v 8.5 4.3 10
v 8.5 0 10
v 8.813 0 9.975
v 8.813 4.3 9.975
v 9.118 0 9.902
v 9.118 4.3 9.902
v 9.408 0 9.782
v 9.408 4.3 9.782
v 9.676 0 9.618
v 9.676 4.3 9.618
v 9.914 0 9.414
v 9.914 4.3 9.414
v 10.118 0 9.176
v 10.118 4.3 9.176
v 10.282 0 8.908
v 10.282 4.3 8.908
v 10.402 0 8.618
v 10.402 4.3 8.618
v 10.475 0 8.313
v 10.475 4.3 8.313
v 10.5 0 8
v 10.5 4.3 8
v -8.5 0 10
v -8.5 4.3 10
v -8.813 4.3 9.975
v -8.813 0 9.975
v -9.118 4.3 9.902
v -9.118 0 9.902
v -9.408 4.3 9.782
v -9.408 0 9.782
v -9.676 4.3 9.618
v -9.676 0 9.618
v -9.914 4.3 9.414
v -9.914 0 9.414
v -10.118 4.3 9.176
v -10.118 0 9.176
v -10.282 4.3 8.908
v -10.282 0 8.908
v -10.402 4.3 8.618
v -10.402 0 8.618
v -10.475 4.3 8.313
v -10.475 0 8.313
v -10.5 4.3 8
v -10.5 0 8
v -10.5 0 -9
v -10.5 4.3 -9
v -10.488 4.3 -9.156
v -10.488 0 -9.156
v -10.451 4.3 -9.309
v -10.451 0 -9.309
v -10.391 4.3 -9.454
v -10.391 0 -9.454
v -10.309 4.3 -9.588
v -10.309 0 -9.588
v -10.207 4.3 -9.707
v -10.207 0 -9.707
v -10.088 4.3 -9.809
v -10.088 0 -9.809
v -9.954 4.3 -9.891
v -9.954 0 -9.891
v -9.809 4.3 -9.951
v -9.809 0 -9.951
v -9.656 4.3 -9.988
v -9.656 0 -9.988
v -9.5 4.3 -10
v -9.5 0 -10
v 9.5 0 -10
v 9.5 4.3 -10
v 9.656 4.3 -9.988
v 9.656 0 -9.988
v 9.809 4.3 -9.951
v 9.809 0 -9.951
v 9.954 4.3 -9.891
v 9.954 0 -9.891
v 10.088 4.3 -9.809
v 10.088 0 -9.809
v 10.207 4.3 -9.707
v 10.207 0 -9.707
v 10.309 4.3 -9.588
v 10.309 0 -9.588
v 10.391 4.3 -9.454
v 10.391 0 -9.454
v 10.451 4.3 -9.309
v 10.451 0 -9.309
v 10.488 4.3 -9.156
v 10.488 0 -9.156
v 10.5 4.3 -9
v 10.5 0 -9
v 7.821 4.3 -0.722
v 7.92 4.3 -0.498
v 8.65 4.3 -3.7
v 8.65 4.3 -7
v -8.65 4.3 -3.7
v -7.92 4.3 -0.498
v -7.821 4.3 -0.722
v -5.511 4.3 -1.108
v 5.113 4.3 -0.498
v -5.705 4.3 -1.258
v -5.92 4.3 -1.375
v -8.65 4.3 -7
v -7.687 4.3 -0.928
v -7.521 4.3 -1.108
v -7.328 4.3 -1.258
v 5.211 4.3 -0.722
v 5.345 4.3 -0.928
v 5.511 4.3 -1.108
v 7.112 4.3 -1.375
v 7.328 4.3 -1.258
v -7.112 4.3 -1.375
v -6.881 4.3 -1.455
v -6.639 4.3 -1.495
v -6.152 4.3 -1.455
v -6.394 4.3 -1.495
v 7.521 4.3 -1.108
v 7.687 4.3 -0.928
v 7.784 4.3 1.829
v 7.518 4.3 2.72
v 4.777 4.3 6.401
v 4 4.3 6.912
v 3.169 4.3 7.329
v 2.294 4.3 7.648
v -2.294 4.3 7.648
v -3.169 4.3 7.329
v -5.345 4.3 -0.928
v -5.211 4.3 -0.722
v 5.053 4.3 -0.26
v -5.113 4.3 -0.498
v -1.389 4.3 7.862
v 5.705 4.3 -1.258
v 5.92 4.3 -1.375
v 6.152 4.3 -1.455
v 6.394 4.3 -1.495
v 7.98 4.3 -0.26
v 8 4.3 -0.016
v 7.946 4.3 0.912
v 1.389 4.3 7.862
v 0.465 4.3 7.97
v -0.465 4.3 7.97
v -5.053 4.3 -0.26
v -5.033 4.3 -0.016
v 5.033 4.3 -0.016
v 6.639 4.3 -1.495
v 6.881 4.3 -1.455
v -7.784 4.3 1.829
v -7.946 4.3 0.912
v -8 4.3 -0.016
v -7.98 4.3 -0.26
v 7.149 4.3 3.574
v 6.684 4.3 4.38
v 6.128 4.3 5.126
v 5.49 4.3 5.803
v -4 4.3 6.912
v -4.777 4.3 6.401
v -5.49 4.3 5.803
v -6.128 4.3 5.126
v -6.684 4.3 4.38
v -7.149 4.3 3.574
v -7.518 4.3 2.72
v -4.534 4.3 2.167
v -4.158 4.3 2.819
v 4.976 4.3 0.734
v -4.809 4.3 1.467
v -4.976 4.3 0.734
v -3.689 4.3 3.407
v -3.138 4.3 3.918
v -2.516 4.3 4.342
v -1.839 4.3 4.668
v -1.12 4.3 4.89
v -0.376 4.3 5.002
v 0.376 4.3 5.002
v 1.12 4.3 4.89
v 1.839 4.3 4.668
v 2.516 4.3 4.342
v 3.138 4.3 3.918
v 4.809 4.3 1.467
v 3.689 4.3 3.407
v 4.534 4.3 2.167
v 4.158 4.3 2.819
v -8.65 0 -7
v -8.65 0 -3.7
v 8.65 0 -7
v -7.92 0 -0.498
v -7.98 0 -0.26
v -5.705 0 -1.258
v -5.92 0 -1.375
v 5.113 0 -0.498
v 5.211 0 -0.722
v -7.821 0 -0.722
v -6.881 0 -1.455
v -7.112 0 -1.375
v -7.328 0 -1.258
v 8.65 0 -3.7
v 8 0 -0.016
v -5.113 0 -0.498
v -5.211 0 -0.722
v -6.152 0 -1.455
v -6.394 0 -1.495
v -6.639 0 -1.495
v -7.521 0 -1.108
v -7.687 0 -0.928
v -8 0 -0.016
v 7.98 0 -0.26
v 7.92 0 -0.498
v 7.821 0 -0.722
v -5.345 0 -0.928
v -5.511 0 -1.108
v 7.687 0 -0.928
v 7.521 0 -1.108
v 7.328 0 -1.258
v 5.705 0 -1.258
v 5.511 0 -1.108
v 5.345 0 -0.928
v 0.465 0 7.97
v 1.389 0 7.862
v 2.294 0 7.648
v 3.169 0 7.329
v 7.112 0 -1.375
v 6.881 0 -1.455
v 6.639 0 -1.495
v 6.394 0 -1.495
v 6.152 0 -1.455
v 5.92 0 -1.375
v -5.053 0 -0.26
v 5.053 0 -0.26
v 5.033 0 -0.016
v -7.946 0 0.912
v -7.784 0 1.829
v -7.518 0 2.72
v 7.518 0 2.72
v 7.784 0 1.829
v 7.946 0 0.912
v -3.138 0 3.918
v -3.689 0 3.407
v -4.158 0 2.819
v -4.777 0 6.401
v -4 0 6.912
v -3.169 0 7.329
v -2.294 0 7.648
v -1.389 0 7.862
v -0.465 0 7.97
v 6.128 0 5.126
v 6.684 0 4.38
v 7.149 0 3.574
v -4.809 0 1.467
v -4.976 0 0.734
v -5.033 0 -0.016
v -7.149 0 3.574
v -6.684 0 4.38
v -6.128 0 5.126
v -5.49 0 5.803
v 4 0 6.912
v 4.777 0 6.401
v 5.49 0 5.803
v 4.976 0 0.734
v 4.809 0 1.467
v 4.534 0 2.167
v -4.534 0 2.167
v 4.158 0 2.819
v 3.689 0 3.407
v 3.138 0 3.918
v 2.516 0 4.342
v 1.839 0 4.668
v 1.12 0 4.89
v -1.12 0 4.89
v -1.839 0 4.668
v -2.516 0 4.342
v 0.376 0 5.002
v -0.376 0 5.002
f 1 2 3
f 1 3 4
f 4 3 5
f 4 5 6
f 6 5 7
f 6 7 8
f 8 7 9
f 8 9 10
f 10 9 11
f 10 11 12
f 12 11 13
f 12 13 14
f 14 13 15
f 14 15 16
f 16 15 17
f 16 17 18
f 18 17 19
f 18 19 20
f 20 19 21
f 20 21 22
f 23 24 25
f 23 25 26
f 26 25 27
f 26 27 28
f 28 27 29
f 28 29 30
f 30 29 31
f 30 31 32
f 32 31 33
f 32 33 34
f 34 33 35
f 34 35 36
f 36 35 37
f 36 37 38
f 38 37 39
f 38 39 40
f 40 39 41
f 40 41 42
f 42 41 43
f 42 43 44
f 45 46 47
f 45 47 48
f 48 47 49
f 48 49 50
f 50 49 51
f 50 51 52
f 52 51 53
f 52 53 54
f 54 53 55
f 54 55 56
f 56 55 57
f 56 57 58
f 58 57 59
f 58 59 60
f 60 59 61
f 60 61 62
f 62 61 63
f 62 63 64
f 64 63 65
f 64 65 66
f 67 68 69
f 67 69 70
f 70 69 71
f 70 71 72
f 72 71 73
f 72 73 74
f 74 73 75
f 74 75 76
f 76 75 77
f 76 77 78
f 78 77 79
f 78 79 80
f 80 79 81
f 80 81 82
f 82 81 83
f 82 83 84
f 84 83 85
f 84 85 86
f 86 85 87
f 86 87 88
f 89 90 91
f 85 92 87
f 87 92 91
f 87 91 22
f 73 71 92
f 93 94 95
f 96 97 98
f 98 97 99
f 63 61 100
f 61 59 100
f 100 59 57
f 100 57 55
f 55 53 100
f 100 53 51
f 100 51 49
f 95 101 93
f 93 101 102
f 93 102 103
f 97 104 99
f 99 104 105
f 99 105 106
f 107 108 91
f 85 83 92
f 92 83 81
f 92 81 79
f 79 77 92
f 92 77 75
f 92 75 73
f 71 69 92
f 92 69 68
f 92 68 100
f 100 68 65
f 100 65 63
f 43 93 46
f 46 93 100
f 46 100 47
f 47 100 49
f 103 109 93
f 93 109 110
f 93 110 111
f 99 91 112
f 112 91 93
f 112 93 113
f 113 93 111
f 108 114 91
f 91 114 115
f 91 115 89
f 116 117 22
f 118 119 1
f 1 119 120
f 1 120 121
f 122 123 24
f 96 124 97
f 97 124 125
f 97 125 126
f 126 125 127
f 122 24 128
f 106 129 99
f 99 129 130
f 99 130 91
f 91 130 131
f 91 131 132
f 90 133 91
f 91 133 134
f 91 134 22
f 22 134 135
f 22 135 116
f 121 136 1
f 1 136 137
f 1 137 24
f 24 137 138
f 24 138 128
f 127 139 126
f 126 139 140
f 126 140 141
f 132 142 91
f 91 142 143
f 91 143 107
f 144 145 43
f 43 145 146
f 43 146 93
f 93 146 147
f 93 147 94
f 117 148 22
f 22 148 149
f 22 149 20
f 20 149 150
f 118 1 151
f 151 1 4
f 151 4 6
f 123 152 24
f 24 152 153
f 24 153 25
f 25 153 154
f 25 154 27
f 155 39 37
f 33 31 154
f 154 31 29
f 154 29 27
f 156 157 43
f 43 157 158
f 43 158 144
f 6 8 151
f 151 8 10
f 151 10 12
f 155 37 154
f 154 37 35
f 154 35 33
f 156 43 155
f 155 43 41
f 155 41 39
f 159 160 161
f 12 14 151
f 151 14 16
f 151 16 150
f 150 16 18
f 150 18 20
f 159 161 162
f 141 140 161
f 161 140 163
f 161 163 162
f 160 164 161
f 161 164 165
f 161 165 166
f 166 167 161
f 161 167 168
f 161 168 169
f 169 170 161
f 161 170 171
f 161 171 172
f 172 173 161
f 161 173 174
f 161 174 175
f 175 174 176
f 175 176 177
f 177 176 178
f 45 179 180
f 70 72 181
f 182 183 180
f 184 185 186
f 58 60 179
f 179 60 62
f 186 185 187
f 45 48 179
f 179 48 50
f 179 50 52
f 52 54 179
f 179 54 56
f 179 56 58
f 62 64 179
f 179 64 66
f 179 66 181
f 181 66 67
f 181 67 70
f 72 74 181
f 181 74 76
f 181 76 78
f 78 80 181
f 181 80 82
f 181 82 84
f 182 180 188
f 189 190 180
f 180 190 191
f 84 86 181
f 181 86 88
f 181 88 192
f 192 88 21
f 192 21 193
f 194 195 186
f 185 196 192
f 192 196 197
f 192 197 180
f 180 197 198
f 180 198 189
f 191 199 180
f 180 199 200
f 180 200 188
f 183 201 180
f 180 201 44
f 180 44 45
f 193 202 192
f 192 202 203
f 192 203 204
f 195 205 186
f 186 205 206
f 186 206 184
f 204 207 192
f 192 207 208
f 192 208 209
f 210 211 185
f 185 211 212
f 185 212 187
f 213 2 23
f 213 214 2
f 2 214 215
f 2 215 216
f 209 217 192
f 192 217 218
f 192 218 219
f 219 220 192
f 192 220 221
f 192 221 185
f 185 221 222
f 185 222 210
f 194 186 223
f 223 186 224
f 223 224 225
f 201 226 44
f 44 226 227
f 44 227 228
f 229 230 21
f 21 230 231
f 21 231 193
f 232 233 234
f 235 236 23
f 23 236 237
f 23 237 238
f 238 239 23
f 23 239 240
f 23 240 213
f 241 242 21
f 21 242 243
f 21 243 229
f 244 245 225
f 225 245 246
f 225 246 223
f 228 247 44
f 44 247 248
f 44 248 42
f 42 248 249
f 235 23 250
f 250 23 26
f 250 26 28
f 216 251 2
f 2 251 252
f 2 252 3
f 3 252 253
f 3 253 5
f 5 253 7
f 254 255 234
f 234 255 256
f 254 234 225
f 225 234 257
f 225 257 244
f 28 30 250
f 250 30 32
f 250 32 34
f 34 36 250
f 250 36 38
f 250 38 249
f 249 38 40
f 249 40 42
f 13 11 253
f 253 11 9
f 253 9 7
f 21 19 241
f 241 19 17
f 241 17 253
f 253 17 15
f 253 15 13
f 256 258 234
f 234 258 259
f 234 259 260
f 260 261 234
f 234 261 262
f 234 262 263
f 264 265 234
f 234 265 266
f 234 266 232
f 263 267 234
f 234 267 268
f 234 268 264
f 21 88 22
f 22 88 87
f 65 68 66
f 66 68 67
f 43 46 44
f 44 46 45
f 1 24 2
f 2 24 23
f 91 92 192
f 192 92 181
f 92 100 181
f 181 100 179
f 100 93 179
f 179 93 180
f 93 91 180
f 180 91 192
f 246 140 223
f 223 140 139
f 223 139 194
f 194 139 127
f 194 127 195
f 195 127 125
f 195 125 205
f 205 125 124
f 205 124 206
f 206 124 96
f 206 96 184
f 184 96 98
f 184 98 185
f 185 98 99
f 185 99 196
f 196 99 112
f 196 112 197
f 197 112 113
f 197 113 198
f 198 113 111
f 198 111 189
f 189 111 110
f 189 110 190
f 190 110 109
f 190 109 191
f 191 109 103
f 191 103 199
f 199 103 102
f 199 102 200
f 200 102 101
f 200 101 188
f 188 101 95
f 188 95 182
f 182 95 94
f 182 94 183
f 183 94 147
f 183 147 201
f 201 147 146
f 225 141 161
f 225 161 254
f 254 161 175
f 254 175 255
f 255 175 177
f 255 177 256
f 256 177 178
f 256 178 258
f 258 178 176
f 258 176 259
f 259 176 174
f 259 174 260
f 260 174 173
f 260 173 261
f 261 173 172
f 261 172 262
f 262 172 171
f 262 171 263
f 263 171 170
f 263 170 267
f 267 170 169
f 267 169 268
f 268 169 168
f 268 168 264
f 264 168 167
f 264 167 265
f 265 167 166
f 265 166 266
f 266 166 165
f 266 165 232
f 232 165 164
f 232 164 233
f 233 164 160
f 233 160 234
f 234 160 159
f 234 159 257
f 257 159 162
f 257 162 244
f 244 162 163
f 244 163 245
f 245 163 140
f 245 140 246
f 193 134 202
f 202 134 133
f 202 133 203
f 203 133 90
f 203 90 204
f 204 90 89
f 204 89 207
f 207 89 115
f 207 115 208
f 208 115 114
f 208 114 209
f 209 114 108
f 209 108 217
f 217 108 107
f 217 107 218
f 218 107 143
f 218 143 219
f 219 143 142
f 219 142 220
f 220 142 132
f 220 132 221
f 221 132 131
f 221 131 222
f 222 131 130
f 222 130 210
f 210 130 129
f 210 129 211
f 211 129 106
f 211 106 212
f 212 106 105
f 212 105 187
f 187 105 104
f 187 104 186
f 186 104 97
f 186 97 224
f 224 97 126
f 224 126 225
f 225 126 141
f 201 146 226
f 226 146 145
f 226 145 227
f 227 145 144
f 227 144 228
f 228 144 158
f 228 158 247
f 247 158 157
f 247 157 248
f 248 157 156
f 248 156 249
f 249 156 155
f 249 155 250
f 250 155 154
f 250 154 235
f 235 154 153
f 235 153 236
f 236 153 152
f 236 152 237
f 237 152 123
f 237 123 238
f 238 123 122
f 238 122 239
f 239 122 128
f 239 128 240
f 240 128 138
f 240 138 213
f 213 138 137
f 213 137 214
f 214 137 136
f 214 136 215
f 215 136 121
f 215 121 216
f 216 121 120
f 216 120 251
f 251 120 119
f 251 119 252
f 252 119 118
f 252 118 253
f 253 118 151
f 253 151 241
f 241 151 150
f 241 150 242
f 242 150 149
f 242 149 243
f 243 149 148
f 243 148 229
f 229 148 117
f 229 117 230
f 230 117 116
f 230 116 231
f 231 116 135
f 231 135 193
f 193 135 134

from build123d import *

# Parameters (mm, degrees)
ESBO_O2_W                = 21
ESBO_O2_H                = 20
ESBO_O2_W_2              = 17.3
ESBO_O2_H_2              = 3.3
RESSALTO_EXTRUS_O1_DEPTH = 4.3
FILETE1_R                = 1
FILETE2_R                = 1
FILETE3_R                = 2
FILETE4_R                = 2
CORTE_EXTRUS_O3_DEPTH    = 4.3


with BuildPart() as part:
    # Esboço2 → Ressalto-extrusão1 (new body)
    with BuildSketch(Plane(origin=(0, 0, 0), x_dir=(1, 0, 0), z_dir=(0, 1, 0))):
        Rectangle(ESBO_O2_W, ESBO_O2_H)
        with Locations((0, 5.35)):
            Rectangle(ESBO_O2_W_2, ESBO_O2_H_2, mode=Mode.SUBTRACT)
    extrude(amount=RESSALTO_EXTRUS_O1_DEPTH)

    # Filete1
    filete1_edges = [part.edges().sort_by_distance(p)[0] for p in [
        (10.5, 2.15, -10),
    ]]
    fillet(filete1_edges, radius=FILETE1_R)

    # Filete2
    filete2_edges = [part.edges().sort_by_distance(p)[0] for p in [
        (-10.5, 2.15, -10),
    ]]
    fillet(filete2_edges, radius=FILETE2_R)

    # Filete3
    filete3_edges = [part.edges().sort_by_distance(p)[0] for p in [
        (-10.5, 2.15, 10),
    ]]
    fillet(filete3_edges, radius=FILETE3_R)

    # Filete4
    filete4_edges = [part.edges().sort_by_distance(p)[0] for p in [
        (10.5, 2.15, 10),
    ]]
    fillet(filete4_edges, radius=FILETE4_R)

    # Esboço6 → Corte-extrusão3 (cut)
    with BuildSketch(Plane(origin=(0, 4.3, 0), x_dir=(1, 0, 0), z_dir=(0, 1, 0))):
        with BuildLine():
            ThreePointArc((-8, 0.016269222), (0, -7.983730778), (8, 0.016269222))
            ThreePointArc((8, 0.016269222), (6.516269222, 1.5), (5.032538443, 0.016269222))
            ThreePointArc((5.032538443, 0.016269222), (0, -5.016269222), (-5.032538443, 0.016269222))
            ThreePointArc((-5.032538443, 0.016269222), (-6.516269222, 1.5), (-8, 0.016269222))
        make_face()
    extrude(amount=-CORTE_EXTRUS_O3_DEPTH, mode=Mode.SUBTRACT)


solid = part.part
